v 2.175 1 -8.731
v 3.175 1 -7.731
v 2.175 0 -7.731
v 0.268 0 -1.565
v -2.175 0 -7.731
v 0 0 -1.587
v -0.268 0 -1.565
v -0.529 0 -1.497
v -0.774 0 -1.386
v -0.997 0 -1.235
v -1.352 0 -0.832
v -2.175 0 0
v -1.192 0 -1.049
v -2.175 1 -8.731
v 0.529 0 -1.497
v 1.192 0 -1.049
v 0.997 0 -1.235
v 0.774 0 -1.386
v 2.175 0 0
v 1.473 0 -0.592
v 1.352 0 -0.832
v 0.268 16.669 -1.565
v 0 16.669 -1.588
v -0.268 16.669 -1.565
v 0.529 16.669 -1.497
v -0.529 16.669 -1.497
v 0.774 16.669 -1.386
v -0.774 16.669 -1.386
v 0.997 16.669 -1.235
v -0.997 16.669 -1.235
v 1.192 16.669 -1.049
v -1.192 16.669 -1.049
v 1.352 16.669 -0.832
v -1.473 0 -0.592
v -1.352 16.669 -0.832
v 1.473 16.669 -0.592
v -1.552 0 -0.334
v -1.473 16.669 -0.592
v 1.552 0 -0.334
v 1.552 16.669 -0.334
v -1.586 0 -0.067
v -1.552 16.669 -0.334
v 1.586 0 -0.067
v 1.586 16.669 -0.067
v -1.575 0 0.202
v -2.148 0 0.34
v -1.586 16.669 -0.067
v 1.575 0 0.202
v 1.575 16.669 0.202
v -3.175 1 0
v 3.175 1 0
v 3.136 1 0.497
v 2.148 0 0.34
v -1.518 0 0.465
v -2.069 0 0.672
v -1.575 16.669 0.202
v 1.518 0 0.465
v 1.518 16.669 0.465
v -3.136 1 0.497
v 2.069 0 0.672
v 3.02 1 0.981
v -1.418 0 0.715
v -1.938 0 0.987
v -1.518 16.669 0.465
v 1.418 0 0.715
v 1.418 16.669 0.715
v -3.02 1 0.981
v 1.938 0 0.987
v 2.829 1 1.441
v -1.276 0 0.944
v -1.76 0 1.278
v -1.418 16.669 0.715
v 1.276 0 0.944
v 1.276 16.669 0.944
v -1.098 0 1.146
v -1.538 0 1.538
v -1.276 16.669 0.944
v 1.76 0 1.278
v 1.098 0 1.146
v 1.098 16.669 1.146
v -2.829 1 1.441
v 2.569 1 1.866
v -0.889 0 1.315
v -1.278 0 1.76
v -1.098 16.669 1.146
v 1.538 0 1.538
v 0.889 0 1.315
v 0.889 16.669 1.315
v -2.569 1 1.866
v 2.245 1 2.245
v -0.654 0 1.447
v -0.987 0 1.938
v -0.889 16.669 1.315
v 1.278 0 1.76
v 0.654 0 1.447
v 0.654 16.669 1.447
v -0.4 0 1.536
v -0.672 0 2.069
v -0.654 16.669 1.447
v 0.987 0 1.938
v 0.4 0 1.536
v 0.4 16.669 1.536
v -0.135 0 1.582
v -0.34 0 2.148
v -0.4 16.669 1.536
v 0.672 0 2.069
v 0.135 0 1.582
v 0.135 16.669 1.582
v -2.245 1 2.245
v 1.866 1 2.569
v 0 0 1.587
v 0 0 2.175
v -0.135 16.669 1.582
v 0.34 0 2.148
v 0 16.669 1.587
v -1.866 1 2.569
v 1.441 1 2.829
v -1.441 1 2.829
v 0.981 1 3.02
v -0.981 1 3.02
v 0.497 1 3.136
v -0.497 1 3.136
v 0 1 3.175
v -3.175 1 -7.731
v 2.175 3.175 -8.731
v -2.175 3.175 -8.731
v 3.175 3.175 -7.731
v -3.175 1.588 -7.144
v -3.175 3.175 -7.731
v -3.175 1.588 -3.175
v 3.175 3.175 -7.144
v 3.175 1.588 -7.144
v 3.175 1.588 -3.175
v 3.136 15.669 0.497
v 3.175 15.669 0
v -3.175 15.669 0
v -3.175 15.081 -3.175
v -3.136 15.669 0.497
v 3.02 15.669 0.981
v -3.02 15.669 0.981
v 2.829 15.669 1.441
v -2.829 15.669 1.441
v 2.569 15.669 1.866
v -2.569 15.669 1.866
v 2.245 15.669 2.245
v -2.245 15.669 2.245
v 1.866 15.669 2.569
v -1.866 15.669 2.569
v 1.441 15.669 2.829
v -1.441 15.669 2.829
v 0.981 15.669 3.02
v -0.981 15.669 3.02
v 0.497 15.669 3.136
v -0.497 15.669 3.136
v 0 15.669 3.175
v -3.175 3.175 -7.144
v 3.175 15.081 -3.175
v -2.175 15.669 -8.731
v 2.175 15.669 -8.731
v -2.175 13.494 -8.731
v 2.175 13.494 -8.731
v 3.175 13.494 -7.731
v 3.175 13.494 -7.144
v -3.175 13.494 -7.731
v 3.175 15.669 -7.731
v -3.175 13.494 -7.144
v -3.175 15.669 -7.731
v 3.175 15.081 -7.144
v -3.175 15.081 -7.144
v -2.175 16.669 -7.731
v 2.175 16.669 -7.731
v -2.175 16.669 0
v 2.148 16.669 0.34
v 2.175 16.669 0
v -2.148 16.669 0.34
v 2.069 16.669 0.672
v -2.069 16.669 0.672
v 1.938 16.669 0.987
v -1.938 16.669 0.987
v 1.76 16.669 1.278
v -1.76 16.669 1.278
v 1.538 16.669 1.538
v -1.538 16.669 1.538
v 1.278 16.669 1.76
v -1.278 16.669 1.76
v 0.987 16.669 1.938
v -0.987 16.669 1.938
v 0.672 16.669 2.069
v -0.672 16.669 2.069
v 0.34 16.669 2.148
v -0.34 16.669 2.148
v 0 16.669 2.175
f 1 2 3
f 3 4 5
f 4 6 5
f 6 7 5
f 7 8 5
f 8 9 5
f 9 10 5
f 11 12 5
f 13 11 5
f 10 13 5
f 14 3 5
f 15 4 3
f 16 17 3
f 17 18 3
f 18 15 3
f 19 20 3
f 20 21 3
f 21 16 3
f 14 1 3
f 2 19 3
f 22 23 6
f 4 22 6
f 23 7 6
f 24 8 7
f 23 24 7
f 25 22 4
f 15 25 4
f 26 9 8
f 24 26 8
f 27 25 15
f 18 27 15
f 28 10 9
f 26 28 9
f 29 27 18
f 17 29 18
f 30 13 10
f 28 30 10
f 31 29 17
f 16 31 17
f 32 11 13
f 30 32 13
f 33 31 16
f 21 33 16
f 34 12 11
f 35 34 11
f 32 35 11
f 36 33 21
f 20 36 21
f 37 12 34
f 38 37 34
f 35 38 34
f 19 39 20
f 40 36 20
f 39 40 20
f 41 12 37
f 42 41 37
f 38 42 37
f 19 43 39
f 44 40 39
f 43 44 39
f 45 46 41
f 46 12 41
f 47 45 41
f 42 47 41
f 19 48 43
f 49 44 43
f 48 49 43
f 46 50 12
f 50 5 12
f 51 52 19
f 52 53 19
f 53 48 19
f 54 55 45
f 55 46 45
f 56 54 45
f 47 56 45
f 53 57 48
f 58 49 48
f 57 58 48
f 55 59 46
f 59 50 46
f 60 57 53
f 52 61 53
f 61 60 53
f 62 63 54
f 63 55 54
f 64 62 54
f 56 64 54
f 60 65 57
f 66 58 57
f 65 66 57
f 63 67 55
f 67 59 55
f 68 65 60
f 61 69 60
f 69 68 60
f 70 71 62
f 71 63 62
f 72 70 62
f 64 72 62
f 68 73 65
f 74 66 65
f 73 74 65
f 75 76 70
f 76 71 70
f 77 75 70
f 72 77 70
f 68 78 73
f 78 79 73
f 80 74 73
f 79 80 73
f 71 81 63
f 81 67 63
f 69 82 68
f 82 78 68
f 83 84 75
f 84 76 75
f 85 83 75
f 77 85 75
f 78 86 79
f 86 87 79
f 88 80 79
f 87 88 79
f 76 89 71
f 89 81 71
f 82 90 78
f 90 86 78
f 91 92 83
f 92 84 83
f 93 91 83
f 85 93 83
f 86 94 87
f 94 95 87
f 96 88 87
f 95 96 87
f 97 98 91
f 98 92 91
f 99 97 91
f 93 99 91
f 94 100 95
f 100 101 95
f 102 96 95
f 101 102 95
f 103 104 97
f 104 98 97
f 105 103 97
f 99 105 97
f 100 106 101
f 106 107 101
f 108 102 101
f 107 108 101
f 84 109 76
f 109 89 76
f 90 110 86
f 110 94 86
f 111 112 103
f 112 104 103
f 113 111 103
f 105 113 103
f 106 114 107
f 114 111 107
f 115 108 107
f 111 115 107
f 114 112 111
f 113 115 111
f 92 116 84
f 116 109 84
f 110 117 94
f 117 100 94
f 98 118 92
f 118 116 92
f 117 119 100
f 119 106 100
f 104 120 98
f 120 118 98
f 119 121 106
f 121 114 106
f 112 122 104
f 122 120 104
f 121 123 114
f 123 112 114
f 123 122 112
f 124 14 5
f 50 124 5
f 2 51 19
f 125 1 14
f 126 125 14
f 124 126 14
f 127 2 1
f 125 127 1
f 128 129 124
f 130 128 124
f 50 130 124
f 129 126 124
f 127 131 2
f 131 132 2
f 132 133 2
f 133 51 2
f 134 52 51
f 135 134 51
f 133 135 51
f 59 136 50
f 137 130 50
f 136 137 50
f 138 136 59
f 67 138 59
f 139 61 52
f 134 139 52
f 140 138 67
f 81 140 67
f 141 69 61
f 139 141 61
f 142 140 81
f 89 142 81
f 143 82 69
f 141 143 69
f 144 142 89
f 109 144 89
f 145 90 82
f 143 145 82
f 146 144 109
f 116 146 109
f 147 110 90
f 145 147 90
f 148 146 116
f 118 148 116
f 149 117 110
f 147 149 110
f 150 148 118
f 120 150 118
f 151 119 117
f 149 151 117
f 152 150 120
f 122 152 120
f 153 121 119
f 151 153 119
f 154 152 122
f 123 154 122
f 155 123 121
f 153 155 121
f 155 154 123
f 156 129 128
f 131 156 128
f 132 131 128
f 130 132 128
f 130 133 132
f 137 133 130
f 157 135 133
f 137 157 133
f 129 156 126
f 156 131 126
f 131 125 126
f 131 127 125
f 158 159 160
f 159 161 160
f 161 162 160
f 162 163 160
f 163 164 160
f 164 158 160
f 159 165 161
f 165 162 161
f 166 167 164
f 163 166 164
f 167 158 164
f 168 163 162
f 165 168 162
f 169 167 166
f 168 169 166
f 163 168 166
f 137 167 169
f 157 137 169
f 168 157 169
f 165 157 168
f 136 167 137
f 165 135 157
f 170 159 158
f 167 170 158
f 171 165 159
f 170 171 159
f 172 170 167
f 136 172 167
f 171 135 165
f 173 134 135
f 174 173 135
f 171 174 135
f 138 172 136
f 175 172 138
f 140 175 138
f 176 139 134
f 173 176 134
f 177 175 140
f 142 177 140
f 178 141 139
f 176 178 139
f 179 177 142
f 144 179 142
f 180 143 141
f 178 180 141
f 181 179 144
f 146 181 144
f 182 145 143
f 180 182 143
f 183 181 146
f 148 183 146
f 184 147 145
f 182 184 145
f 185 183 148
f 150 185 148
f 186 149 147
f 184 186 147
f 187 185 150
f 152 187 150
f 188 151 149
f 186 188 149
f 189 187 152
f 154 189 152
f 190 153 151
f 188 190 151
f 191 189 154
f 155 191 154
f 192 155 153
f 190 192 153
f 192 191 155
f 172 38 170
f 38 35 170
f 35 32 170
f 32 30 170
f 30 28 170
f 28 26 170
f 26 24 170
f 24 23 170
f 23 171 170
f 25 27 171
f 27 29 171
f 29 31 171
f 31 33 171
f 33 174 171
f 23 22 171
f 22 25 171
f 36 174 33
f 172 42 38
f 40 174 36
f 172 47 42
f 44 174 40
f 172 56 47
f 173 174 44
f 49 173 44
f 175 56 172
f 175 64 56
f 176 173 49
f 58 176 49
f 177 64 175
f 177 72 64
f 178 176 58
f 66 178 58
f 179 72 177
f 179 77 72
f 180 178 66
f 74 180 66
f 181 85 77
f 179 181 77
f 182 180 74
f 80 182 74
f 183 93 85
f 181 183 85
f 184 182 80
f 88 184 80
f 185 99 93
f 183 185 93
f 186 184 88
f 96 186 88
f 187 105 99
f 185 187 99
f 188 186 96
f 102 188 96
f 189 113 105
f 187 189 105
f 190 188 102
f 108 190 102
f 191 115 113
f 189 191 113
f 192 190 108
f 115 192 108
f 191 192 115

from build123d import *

# Parameters (mm, degrees)
SKETCH1_R           = 1.5875
BOSS_EXTRUDE1_DEPTH = 16.66875
CUT_EXTRUDE1_DEPTH  = 7.35
CHAMFER1_SIZE       = 1


with BuildPart() as part:
    # Sketch1 → Boss-Extrude1 (new body)
    with BuildSketch(Plane(origin=(0, 0, 0), x_dir=(1, 0, 0), z_dir=(0, 1, 0))):
        with BuildLine():
            Line((-3.175, 0), (-3.175, 8.73125))
            Line((-3.175, 8.73125), (3.175, 8.73125))
            Line((3.175, 8.73125), (3.175, 0))
            ThreePointArc((3.175, 0), (0, -3.175), (-3.175, 0))
        make_face()
        Circle(SKETCH1_R, mode=Mode.SUBTRACT)
    extrude(amount=BOSS_EXTRUDE1_DEPTH)

    # Sketch3 → Cut-Extrude1 (cut, through all)
    with BuildSketch(Plane(origin=(3.175, 0, 0), x_dir=(0, 0, -1), z_dir=(1, 0, 0))):
        Polygon((8.73125, 13.49375), (7.14375, 13.49375), (7.14375, 15.08125), (3.175, 15.08125), (3.175, 1.5875), (7.14375, 1.5875), (7.14375, 3.175), (8.73125, 3.175), align=None)
    extrude(amount=-CUT_EXTRUDE1_DEPTH, mode=Mode.SUBTRACT)

    # Chamfer1
    chamfer1_edges = [part.edges().sort_by_distance(p)[0] for p in [
        (0, 16.66875, -8.73125),
        (-3.175, 16.66875, -4.365625),
        (-3.175, 1.5875, -8.73125),
        (3.175, 1.5875, -8.73125),
        (0, 16.66875, 3.175),
        (-3.175, 0, -4.365625),
        (0, 0, -8.73125),
        (3.175, 0, -4.365625),
        (0, 0, 3.175),
        (3.175, 16.66875, -4.365625),
        (-3.175, 15.08125, -8.73125),
        (3.175, 15.08125, -8.73125),
    ]]
    chamfer(chamfer1_edges, length=CHAMFER1_SIZE)


solid = part.part
